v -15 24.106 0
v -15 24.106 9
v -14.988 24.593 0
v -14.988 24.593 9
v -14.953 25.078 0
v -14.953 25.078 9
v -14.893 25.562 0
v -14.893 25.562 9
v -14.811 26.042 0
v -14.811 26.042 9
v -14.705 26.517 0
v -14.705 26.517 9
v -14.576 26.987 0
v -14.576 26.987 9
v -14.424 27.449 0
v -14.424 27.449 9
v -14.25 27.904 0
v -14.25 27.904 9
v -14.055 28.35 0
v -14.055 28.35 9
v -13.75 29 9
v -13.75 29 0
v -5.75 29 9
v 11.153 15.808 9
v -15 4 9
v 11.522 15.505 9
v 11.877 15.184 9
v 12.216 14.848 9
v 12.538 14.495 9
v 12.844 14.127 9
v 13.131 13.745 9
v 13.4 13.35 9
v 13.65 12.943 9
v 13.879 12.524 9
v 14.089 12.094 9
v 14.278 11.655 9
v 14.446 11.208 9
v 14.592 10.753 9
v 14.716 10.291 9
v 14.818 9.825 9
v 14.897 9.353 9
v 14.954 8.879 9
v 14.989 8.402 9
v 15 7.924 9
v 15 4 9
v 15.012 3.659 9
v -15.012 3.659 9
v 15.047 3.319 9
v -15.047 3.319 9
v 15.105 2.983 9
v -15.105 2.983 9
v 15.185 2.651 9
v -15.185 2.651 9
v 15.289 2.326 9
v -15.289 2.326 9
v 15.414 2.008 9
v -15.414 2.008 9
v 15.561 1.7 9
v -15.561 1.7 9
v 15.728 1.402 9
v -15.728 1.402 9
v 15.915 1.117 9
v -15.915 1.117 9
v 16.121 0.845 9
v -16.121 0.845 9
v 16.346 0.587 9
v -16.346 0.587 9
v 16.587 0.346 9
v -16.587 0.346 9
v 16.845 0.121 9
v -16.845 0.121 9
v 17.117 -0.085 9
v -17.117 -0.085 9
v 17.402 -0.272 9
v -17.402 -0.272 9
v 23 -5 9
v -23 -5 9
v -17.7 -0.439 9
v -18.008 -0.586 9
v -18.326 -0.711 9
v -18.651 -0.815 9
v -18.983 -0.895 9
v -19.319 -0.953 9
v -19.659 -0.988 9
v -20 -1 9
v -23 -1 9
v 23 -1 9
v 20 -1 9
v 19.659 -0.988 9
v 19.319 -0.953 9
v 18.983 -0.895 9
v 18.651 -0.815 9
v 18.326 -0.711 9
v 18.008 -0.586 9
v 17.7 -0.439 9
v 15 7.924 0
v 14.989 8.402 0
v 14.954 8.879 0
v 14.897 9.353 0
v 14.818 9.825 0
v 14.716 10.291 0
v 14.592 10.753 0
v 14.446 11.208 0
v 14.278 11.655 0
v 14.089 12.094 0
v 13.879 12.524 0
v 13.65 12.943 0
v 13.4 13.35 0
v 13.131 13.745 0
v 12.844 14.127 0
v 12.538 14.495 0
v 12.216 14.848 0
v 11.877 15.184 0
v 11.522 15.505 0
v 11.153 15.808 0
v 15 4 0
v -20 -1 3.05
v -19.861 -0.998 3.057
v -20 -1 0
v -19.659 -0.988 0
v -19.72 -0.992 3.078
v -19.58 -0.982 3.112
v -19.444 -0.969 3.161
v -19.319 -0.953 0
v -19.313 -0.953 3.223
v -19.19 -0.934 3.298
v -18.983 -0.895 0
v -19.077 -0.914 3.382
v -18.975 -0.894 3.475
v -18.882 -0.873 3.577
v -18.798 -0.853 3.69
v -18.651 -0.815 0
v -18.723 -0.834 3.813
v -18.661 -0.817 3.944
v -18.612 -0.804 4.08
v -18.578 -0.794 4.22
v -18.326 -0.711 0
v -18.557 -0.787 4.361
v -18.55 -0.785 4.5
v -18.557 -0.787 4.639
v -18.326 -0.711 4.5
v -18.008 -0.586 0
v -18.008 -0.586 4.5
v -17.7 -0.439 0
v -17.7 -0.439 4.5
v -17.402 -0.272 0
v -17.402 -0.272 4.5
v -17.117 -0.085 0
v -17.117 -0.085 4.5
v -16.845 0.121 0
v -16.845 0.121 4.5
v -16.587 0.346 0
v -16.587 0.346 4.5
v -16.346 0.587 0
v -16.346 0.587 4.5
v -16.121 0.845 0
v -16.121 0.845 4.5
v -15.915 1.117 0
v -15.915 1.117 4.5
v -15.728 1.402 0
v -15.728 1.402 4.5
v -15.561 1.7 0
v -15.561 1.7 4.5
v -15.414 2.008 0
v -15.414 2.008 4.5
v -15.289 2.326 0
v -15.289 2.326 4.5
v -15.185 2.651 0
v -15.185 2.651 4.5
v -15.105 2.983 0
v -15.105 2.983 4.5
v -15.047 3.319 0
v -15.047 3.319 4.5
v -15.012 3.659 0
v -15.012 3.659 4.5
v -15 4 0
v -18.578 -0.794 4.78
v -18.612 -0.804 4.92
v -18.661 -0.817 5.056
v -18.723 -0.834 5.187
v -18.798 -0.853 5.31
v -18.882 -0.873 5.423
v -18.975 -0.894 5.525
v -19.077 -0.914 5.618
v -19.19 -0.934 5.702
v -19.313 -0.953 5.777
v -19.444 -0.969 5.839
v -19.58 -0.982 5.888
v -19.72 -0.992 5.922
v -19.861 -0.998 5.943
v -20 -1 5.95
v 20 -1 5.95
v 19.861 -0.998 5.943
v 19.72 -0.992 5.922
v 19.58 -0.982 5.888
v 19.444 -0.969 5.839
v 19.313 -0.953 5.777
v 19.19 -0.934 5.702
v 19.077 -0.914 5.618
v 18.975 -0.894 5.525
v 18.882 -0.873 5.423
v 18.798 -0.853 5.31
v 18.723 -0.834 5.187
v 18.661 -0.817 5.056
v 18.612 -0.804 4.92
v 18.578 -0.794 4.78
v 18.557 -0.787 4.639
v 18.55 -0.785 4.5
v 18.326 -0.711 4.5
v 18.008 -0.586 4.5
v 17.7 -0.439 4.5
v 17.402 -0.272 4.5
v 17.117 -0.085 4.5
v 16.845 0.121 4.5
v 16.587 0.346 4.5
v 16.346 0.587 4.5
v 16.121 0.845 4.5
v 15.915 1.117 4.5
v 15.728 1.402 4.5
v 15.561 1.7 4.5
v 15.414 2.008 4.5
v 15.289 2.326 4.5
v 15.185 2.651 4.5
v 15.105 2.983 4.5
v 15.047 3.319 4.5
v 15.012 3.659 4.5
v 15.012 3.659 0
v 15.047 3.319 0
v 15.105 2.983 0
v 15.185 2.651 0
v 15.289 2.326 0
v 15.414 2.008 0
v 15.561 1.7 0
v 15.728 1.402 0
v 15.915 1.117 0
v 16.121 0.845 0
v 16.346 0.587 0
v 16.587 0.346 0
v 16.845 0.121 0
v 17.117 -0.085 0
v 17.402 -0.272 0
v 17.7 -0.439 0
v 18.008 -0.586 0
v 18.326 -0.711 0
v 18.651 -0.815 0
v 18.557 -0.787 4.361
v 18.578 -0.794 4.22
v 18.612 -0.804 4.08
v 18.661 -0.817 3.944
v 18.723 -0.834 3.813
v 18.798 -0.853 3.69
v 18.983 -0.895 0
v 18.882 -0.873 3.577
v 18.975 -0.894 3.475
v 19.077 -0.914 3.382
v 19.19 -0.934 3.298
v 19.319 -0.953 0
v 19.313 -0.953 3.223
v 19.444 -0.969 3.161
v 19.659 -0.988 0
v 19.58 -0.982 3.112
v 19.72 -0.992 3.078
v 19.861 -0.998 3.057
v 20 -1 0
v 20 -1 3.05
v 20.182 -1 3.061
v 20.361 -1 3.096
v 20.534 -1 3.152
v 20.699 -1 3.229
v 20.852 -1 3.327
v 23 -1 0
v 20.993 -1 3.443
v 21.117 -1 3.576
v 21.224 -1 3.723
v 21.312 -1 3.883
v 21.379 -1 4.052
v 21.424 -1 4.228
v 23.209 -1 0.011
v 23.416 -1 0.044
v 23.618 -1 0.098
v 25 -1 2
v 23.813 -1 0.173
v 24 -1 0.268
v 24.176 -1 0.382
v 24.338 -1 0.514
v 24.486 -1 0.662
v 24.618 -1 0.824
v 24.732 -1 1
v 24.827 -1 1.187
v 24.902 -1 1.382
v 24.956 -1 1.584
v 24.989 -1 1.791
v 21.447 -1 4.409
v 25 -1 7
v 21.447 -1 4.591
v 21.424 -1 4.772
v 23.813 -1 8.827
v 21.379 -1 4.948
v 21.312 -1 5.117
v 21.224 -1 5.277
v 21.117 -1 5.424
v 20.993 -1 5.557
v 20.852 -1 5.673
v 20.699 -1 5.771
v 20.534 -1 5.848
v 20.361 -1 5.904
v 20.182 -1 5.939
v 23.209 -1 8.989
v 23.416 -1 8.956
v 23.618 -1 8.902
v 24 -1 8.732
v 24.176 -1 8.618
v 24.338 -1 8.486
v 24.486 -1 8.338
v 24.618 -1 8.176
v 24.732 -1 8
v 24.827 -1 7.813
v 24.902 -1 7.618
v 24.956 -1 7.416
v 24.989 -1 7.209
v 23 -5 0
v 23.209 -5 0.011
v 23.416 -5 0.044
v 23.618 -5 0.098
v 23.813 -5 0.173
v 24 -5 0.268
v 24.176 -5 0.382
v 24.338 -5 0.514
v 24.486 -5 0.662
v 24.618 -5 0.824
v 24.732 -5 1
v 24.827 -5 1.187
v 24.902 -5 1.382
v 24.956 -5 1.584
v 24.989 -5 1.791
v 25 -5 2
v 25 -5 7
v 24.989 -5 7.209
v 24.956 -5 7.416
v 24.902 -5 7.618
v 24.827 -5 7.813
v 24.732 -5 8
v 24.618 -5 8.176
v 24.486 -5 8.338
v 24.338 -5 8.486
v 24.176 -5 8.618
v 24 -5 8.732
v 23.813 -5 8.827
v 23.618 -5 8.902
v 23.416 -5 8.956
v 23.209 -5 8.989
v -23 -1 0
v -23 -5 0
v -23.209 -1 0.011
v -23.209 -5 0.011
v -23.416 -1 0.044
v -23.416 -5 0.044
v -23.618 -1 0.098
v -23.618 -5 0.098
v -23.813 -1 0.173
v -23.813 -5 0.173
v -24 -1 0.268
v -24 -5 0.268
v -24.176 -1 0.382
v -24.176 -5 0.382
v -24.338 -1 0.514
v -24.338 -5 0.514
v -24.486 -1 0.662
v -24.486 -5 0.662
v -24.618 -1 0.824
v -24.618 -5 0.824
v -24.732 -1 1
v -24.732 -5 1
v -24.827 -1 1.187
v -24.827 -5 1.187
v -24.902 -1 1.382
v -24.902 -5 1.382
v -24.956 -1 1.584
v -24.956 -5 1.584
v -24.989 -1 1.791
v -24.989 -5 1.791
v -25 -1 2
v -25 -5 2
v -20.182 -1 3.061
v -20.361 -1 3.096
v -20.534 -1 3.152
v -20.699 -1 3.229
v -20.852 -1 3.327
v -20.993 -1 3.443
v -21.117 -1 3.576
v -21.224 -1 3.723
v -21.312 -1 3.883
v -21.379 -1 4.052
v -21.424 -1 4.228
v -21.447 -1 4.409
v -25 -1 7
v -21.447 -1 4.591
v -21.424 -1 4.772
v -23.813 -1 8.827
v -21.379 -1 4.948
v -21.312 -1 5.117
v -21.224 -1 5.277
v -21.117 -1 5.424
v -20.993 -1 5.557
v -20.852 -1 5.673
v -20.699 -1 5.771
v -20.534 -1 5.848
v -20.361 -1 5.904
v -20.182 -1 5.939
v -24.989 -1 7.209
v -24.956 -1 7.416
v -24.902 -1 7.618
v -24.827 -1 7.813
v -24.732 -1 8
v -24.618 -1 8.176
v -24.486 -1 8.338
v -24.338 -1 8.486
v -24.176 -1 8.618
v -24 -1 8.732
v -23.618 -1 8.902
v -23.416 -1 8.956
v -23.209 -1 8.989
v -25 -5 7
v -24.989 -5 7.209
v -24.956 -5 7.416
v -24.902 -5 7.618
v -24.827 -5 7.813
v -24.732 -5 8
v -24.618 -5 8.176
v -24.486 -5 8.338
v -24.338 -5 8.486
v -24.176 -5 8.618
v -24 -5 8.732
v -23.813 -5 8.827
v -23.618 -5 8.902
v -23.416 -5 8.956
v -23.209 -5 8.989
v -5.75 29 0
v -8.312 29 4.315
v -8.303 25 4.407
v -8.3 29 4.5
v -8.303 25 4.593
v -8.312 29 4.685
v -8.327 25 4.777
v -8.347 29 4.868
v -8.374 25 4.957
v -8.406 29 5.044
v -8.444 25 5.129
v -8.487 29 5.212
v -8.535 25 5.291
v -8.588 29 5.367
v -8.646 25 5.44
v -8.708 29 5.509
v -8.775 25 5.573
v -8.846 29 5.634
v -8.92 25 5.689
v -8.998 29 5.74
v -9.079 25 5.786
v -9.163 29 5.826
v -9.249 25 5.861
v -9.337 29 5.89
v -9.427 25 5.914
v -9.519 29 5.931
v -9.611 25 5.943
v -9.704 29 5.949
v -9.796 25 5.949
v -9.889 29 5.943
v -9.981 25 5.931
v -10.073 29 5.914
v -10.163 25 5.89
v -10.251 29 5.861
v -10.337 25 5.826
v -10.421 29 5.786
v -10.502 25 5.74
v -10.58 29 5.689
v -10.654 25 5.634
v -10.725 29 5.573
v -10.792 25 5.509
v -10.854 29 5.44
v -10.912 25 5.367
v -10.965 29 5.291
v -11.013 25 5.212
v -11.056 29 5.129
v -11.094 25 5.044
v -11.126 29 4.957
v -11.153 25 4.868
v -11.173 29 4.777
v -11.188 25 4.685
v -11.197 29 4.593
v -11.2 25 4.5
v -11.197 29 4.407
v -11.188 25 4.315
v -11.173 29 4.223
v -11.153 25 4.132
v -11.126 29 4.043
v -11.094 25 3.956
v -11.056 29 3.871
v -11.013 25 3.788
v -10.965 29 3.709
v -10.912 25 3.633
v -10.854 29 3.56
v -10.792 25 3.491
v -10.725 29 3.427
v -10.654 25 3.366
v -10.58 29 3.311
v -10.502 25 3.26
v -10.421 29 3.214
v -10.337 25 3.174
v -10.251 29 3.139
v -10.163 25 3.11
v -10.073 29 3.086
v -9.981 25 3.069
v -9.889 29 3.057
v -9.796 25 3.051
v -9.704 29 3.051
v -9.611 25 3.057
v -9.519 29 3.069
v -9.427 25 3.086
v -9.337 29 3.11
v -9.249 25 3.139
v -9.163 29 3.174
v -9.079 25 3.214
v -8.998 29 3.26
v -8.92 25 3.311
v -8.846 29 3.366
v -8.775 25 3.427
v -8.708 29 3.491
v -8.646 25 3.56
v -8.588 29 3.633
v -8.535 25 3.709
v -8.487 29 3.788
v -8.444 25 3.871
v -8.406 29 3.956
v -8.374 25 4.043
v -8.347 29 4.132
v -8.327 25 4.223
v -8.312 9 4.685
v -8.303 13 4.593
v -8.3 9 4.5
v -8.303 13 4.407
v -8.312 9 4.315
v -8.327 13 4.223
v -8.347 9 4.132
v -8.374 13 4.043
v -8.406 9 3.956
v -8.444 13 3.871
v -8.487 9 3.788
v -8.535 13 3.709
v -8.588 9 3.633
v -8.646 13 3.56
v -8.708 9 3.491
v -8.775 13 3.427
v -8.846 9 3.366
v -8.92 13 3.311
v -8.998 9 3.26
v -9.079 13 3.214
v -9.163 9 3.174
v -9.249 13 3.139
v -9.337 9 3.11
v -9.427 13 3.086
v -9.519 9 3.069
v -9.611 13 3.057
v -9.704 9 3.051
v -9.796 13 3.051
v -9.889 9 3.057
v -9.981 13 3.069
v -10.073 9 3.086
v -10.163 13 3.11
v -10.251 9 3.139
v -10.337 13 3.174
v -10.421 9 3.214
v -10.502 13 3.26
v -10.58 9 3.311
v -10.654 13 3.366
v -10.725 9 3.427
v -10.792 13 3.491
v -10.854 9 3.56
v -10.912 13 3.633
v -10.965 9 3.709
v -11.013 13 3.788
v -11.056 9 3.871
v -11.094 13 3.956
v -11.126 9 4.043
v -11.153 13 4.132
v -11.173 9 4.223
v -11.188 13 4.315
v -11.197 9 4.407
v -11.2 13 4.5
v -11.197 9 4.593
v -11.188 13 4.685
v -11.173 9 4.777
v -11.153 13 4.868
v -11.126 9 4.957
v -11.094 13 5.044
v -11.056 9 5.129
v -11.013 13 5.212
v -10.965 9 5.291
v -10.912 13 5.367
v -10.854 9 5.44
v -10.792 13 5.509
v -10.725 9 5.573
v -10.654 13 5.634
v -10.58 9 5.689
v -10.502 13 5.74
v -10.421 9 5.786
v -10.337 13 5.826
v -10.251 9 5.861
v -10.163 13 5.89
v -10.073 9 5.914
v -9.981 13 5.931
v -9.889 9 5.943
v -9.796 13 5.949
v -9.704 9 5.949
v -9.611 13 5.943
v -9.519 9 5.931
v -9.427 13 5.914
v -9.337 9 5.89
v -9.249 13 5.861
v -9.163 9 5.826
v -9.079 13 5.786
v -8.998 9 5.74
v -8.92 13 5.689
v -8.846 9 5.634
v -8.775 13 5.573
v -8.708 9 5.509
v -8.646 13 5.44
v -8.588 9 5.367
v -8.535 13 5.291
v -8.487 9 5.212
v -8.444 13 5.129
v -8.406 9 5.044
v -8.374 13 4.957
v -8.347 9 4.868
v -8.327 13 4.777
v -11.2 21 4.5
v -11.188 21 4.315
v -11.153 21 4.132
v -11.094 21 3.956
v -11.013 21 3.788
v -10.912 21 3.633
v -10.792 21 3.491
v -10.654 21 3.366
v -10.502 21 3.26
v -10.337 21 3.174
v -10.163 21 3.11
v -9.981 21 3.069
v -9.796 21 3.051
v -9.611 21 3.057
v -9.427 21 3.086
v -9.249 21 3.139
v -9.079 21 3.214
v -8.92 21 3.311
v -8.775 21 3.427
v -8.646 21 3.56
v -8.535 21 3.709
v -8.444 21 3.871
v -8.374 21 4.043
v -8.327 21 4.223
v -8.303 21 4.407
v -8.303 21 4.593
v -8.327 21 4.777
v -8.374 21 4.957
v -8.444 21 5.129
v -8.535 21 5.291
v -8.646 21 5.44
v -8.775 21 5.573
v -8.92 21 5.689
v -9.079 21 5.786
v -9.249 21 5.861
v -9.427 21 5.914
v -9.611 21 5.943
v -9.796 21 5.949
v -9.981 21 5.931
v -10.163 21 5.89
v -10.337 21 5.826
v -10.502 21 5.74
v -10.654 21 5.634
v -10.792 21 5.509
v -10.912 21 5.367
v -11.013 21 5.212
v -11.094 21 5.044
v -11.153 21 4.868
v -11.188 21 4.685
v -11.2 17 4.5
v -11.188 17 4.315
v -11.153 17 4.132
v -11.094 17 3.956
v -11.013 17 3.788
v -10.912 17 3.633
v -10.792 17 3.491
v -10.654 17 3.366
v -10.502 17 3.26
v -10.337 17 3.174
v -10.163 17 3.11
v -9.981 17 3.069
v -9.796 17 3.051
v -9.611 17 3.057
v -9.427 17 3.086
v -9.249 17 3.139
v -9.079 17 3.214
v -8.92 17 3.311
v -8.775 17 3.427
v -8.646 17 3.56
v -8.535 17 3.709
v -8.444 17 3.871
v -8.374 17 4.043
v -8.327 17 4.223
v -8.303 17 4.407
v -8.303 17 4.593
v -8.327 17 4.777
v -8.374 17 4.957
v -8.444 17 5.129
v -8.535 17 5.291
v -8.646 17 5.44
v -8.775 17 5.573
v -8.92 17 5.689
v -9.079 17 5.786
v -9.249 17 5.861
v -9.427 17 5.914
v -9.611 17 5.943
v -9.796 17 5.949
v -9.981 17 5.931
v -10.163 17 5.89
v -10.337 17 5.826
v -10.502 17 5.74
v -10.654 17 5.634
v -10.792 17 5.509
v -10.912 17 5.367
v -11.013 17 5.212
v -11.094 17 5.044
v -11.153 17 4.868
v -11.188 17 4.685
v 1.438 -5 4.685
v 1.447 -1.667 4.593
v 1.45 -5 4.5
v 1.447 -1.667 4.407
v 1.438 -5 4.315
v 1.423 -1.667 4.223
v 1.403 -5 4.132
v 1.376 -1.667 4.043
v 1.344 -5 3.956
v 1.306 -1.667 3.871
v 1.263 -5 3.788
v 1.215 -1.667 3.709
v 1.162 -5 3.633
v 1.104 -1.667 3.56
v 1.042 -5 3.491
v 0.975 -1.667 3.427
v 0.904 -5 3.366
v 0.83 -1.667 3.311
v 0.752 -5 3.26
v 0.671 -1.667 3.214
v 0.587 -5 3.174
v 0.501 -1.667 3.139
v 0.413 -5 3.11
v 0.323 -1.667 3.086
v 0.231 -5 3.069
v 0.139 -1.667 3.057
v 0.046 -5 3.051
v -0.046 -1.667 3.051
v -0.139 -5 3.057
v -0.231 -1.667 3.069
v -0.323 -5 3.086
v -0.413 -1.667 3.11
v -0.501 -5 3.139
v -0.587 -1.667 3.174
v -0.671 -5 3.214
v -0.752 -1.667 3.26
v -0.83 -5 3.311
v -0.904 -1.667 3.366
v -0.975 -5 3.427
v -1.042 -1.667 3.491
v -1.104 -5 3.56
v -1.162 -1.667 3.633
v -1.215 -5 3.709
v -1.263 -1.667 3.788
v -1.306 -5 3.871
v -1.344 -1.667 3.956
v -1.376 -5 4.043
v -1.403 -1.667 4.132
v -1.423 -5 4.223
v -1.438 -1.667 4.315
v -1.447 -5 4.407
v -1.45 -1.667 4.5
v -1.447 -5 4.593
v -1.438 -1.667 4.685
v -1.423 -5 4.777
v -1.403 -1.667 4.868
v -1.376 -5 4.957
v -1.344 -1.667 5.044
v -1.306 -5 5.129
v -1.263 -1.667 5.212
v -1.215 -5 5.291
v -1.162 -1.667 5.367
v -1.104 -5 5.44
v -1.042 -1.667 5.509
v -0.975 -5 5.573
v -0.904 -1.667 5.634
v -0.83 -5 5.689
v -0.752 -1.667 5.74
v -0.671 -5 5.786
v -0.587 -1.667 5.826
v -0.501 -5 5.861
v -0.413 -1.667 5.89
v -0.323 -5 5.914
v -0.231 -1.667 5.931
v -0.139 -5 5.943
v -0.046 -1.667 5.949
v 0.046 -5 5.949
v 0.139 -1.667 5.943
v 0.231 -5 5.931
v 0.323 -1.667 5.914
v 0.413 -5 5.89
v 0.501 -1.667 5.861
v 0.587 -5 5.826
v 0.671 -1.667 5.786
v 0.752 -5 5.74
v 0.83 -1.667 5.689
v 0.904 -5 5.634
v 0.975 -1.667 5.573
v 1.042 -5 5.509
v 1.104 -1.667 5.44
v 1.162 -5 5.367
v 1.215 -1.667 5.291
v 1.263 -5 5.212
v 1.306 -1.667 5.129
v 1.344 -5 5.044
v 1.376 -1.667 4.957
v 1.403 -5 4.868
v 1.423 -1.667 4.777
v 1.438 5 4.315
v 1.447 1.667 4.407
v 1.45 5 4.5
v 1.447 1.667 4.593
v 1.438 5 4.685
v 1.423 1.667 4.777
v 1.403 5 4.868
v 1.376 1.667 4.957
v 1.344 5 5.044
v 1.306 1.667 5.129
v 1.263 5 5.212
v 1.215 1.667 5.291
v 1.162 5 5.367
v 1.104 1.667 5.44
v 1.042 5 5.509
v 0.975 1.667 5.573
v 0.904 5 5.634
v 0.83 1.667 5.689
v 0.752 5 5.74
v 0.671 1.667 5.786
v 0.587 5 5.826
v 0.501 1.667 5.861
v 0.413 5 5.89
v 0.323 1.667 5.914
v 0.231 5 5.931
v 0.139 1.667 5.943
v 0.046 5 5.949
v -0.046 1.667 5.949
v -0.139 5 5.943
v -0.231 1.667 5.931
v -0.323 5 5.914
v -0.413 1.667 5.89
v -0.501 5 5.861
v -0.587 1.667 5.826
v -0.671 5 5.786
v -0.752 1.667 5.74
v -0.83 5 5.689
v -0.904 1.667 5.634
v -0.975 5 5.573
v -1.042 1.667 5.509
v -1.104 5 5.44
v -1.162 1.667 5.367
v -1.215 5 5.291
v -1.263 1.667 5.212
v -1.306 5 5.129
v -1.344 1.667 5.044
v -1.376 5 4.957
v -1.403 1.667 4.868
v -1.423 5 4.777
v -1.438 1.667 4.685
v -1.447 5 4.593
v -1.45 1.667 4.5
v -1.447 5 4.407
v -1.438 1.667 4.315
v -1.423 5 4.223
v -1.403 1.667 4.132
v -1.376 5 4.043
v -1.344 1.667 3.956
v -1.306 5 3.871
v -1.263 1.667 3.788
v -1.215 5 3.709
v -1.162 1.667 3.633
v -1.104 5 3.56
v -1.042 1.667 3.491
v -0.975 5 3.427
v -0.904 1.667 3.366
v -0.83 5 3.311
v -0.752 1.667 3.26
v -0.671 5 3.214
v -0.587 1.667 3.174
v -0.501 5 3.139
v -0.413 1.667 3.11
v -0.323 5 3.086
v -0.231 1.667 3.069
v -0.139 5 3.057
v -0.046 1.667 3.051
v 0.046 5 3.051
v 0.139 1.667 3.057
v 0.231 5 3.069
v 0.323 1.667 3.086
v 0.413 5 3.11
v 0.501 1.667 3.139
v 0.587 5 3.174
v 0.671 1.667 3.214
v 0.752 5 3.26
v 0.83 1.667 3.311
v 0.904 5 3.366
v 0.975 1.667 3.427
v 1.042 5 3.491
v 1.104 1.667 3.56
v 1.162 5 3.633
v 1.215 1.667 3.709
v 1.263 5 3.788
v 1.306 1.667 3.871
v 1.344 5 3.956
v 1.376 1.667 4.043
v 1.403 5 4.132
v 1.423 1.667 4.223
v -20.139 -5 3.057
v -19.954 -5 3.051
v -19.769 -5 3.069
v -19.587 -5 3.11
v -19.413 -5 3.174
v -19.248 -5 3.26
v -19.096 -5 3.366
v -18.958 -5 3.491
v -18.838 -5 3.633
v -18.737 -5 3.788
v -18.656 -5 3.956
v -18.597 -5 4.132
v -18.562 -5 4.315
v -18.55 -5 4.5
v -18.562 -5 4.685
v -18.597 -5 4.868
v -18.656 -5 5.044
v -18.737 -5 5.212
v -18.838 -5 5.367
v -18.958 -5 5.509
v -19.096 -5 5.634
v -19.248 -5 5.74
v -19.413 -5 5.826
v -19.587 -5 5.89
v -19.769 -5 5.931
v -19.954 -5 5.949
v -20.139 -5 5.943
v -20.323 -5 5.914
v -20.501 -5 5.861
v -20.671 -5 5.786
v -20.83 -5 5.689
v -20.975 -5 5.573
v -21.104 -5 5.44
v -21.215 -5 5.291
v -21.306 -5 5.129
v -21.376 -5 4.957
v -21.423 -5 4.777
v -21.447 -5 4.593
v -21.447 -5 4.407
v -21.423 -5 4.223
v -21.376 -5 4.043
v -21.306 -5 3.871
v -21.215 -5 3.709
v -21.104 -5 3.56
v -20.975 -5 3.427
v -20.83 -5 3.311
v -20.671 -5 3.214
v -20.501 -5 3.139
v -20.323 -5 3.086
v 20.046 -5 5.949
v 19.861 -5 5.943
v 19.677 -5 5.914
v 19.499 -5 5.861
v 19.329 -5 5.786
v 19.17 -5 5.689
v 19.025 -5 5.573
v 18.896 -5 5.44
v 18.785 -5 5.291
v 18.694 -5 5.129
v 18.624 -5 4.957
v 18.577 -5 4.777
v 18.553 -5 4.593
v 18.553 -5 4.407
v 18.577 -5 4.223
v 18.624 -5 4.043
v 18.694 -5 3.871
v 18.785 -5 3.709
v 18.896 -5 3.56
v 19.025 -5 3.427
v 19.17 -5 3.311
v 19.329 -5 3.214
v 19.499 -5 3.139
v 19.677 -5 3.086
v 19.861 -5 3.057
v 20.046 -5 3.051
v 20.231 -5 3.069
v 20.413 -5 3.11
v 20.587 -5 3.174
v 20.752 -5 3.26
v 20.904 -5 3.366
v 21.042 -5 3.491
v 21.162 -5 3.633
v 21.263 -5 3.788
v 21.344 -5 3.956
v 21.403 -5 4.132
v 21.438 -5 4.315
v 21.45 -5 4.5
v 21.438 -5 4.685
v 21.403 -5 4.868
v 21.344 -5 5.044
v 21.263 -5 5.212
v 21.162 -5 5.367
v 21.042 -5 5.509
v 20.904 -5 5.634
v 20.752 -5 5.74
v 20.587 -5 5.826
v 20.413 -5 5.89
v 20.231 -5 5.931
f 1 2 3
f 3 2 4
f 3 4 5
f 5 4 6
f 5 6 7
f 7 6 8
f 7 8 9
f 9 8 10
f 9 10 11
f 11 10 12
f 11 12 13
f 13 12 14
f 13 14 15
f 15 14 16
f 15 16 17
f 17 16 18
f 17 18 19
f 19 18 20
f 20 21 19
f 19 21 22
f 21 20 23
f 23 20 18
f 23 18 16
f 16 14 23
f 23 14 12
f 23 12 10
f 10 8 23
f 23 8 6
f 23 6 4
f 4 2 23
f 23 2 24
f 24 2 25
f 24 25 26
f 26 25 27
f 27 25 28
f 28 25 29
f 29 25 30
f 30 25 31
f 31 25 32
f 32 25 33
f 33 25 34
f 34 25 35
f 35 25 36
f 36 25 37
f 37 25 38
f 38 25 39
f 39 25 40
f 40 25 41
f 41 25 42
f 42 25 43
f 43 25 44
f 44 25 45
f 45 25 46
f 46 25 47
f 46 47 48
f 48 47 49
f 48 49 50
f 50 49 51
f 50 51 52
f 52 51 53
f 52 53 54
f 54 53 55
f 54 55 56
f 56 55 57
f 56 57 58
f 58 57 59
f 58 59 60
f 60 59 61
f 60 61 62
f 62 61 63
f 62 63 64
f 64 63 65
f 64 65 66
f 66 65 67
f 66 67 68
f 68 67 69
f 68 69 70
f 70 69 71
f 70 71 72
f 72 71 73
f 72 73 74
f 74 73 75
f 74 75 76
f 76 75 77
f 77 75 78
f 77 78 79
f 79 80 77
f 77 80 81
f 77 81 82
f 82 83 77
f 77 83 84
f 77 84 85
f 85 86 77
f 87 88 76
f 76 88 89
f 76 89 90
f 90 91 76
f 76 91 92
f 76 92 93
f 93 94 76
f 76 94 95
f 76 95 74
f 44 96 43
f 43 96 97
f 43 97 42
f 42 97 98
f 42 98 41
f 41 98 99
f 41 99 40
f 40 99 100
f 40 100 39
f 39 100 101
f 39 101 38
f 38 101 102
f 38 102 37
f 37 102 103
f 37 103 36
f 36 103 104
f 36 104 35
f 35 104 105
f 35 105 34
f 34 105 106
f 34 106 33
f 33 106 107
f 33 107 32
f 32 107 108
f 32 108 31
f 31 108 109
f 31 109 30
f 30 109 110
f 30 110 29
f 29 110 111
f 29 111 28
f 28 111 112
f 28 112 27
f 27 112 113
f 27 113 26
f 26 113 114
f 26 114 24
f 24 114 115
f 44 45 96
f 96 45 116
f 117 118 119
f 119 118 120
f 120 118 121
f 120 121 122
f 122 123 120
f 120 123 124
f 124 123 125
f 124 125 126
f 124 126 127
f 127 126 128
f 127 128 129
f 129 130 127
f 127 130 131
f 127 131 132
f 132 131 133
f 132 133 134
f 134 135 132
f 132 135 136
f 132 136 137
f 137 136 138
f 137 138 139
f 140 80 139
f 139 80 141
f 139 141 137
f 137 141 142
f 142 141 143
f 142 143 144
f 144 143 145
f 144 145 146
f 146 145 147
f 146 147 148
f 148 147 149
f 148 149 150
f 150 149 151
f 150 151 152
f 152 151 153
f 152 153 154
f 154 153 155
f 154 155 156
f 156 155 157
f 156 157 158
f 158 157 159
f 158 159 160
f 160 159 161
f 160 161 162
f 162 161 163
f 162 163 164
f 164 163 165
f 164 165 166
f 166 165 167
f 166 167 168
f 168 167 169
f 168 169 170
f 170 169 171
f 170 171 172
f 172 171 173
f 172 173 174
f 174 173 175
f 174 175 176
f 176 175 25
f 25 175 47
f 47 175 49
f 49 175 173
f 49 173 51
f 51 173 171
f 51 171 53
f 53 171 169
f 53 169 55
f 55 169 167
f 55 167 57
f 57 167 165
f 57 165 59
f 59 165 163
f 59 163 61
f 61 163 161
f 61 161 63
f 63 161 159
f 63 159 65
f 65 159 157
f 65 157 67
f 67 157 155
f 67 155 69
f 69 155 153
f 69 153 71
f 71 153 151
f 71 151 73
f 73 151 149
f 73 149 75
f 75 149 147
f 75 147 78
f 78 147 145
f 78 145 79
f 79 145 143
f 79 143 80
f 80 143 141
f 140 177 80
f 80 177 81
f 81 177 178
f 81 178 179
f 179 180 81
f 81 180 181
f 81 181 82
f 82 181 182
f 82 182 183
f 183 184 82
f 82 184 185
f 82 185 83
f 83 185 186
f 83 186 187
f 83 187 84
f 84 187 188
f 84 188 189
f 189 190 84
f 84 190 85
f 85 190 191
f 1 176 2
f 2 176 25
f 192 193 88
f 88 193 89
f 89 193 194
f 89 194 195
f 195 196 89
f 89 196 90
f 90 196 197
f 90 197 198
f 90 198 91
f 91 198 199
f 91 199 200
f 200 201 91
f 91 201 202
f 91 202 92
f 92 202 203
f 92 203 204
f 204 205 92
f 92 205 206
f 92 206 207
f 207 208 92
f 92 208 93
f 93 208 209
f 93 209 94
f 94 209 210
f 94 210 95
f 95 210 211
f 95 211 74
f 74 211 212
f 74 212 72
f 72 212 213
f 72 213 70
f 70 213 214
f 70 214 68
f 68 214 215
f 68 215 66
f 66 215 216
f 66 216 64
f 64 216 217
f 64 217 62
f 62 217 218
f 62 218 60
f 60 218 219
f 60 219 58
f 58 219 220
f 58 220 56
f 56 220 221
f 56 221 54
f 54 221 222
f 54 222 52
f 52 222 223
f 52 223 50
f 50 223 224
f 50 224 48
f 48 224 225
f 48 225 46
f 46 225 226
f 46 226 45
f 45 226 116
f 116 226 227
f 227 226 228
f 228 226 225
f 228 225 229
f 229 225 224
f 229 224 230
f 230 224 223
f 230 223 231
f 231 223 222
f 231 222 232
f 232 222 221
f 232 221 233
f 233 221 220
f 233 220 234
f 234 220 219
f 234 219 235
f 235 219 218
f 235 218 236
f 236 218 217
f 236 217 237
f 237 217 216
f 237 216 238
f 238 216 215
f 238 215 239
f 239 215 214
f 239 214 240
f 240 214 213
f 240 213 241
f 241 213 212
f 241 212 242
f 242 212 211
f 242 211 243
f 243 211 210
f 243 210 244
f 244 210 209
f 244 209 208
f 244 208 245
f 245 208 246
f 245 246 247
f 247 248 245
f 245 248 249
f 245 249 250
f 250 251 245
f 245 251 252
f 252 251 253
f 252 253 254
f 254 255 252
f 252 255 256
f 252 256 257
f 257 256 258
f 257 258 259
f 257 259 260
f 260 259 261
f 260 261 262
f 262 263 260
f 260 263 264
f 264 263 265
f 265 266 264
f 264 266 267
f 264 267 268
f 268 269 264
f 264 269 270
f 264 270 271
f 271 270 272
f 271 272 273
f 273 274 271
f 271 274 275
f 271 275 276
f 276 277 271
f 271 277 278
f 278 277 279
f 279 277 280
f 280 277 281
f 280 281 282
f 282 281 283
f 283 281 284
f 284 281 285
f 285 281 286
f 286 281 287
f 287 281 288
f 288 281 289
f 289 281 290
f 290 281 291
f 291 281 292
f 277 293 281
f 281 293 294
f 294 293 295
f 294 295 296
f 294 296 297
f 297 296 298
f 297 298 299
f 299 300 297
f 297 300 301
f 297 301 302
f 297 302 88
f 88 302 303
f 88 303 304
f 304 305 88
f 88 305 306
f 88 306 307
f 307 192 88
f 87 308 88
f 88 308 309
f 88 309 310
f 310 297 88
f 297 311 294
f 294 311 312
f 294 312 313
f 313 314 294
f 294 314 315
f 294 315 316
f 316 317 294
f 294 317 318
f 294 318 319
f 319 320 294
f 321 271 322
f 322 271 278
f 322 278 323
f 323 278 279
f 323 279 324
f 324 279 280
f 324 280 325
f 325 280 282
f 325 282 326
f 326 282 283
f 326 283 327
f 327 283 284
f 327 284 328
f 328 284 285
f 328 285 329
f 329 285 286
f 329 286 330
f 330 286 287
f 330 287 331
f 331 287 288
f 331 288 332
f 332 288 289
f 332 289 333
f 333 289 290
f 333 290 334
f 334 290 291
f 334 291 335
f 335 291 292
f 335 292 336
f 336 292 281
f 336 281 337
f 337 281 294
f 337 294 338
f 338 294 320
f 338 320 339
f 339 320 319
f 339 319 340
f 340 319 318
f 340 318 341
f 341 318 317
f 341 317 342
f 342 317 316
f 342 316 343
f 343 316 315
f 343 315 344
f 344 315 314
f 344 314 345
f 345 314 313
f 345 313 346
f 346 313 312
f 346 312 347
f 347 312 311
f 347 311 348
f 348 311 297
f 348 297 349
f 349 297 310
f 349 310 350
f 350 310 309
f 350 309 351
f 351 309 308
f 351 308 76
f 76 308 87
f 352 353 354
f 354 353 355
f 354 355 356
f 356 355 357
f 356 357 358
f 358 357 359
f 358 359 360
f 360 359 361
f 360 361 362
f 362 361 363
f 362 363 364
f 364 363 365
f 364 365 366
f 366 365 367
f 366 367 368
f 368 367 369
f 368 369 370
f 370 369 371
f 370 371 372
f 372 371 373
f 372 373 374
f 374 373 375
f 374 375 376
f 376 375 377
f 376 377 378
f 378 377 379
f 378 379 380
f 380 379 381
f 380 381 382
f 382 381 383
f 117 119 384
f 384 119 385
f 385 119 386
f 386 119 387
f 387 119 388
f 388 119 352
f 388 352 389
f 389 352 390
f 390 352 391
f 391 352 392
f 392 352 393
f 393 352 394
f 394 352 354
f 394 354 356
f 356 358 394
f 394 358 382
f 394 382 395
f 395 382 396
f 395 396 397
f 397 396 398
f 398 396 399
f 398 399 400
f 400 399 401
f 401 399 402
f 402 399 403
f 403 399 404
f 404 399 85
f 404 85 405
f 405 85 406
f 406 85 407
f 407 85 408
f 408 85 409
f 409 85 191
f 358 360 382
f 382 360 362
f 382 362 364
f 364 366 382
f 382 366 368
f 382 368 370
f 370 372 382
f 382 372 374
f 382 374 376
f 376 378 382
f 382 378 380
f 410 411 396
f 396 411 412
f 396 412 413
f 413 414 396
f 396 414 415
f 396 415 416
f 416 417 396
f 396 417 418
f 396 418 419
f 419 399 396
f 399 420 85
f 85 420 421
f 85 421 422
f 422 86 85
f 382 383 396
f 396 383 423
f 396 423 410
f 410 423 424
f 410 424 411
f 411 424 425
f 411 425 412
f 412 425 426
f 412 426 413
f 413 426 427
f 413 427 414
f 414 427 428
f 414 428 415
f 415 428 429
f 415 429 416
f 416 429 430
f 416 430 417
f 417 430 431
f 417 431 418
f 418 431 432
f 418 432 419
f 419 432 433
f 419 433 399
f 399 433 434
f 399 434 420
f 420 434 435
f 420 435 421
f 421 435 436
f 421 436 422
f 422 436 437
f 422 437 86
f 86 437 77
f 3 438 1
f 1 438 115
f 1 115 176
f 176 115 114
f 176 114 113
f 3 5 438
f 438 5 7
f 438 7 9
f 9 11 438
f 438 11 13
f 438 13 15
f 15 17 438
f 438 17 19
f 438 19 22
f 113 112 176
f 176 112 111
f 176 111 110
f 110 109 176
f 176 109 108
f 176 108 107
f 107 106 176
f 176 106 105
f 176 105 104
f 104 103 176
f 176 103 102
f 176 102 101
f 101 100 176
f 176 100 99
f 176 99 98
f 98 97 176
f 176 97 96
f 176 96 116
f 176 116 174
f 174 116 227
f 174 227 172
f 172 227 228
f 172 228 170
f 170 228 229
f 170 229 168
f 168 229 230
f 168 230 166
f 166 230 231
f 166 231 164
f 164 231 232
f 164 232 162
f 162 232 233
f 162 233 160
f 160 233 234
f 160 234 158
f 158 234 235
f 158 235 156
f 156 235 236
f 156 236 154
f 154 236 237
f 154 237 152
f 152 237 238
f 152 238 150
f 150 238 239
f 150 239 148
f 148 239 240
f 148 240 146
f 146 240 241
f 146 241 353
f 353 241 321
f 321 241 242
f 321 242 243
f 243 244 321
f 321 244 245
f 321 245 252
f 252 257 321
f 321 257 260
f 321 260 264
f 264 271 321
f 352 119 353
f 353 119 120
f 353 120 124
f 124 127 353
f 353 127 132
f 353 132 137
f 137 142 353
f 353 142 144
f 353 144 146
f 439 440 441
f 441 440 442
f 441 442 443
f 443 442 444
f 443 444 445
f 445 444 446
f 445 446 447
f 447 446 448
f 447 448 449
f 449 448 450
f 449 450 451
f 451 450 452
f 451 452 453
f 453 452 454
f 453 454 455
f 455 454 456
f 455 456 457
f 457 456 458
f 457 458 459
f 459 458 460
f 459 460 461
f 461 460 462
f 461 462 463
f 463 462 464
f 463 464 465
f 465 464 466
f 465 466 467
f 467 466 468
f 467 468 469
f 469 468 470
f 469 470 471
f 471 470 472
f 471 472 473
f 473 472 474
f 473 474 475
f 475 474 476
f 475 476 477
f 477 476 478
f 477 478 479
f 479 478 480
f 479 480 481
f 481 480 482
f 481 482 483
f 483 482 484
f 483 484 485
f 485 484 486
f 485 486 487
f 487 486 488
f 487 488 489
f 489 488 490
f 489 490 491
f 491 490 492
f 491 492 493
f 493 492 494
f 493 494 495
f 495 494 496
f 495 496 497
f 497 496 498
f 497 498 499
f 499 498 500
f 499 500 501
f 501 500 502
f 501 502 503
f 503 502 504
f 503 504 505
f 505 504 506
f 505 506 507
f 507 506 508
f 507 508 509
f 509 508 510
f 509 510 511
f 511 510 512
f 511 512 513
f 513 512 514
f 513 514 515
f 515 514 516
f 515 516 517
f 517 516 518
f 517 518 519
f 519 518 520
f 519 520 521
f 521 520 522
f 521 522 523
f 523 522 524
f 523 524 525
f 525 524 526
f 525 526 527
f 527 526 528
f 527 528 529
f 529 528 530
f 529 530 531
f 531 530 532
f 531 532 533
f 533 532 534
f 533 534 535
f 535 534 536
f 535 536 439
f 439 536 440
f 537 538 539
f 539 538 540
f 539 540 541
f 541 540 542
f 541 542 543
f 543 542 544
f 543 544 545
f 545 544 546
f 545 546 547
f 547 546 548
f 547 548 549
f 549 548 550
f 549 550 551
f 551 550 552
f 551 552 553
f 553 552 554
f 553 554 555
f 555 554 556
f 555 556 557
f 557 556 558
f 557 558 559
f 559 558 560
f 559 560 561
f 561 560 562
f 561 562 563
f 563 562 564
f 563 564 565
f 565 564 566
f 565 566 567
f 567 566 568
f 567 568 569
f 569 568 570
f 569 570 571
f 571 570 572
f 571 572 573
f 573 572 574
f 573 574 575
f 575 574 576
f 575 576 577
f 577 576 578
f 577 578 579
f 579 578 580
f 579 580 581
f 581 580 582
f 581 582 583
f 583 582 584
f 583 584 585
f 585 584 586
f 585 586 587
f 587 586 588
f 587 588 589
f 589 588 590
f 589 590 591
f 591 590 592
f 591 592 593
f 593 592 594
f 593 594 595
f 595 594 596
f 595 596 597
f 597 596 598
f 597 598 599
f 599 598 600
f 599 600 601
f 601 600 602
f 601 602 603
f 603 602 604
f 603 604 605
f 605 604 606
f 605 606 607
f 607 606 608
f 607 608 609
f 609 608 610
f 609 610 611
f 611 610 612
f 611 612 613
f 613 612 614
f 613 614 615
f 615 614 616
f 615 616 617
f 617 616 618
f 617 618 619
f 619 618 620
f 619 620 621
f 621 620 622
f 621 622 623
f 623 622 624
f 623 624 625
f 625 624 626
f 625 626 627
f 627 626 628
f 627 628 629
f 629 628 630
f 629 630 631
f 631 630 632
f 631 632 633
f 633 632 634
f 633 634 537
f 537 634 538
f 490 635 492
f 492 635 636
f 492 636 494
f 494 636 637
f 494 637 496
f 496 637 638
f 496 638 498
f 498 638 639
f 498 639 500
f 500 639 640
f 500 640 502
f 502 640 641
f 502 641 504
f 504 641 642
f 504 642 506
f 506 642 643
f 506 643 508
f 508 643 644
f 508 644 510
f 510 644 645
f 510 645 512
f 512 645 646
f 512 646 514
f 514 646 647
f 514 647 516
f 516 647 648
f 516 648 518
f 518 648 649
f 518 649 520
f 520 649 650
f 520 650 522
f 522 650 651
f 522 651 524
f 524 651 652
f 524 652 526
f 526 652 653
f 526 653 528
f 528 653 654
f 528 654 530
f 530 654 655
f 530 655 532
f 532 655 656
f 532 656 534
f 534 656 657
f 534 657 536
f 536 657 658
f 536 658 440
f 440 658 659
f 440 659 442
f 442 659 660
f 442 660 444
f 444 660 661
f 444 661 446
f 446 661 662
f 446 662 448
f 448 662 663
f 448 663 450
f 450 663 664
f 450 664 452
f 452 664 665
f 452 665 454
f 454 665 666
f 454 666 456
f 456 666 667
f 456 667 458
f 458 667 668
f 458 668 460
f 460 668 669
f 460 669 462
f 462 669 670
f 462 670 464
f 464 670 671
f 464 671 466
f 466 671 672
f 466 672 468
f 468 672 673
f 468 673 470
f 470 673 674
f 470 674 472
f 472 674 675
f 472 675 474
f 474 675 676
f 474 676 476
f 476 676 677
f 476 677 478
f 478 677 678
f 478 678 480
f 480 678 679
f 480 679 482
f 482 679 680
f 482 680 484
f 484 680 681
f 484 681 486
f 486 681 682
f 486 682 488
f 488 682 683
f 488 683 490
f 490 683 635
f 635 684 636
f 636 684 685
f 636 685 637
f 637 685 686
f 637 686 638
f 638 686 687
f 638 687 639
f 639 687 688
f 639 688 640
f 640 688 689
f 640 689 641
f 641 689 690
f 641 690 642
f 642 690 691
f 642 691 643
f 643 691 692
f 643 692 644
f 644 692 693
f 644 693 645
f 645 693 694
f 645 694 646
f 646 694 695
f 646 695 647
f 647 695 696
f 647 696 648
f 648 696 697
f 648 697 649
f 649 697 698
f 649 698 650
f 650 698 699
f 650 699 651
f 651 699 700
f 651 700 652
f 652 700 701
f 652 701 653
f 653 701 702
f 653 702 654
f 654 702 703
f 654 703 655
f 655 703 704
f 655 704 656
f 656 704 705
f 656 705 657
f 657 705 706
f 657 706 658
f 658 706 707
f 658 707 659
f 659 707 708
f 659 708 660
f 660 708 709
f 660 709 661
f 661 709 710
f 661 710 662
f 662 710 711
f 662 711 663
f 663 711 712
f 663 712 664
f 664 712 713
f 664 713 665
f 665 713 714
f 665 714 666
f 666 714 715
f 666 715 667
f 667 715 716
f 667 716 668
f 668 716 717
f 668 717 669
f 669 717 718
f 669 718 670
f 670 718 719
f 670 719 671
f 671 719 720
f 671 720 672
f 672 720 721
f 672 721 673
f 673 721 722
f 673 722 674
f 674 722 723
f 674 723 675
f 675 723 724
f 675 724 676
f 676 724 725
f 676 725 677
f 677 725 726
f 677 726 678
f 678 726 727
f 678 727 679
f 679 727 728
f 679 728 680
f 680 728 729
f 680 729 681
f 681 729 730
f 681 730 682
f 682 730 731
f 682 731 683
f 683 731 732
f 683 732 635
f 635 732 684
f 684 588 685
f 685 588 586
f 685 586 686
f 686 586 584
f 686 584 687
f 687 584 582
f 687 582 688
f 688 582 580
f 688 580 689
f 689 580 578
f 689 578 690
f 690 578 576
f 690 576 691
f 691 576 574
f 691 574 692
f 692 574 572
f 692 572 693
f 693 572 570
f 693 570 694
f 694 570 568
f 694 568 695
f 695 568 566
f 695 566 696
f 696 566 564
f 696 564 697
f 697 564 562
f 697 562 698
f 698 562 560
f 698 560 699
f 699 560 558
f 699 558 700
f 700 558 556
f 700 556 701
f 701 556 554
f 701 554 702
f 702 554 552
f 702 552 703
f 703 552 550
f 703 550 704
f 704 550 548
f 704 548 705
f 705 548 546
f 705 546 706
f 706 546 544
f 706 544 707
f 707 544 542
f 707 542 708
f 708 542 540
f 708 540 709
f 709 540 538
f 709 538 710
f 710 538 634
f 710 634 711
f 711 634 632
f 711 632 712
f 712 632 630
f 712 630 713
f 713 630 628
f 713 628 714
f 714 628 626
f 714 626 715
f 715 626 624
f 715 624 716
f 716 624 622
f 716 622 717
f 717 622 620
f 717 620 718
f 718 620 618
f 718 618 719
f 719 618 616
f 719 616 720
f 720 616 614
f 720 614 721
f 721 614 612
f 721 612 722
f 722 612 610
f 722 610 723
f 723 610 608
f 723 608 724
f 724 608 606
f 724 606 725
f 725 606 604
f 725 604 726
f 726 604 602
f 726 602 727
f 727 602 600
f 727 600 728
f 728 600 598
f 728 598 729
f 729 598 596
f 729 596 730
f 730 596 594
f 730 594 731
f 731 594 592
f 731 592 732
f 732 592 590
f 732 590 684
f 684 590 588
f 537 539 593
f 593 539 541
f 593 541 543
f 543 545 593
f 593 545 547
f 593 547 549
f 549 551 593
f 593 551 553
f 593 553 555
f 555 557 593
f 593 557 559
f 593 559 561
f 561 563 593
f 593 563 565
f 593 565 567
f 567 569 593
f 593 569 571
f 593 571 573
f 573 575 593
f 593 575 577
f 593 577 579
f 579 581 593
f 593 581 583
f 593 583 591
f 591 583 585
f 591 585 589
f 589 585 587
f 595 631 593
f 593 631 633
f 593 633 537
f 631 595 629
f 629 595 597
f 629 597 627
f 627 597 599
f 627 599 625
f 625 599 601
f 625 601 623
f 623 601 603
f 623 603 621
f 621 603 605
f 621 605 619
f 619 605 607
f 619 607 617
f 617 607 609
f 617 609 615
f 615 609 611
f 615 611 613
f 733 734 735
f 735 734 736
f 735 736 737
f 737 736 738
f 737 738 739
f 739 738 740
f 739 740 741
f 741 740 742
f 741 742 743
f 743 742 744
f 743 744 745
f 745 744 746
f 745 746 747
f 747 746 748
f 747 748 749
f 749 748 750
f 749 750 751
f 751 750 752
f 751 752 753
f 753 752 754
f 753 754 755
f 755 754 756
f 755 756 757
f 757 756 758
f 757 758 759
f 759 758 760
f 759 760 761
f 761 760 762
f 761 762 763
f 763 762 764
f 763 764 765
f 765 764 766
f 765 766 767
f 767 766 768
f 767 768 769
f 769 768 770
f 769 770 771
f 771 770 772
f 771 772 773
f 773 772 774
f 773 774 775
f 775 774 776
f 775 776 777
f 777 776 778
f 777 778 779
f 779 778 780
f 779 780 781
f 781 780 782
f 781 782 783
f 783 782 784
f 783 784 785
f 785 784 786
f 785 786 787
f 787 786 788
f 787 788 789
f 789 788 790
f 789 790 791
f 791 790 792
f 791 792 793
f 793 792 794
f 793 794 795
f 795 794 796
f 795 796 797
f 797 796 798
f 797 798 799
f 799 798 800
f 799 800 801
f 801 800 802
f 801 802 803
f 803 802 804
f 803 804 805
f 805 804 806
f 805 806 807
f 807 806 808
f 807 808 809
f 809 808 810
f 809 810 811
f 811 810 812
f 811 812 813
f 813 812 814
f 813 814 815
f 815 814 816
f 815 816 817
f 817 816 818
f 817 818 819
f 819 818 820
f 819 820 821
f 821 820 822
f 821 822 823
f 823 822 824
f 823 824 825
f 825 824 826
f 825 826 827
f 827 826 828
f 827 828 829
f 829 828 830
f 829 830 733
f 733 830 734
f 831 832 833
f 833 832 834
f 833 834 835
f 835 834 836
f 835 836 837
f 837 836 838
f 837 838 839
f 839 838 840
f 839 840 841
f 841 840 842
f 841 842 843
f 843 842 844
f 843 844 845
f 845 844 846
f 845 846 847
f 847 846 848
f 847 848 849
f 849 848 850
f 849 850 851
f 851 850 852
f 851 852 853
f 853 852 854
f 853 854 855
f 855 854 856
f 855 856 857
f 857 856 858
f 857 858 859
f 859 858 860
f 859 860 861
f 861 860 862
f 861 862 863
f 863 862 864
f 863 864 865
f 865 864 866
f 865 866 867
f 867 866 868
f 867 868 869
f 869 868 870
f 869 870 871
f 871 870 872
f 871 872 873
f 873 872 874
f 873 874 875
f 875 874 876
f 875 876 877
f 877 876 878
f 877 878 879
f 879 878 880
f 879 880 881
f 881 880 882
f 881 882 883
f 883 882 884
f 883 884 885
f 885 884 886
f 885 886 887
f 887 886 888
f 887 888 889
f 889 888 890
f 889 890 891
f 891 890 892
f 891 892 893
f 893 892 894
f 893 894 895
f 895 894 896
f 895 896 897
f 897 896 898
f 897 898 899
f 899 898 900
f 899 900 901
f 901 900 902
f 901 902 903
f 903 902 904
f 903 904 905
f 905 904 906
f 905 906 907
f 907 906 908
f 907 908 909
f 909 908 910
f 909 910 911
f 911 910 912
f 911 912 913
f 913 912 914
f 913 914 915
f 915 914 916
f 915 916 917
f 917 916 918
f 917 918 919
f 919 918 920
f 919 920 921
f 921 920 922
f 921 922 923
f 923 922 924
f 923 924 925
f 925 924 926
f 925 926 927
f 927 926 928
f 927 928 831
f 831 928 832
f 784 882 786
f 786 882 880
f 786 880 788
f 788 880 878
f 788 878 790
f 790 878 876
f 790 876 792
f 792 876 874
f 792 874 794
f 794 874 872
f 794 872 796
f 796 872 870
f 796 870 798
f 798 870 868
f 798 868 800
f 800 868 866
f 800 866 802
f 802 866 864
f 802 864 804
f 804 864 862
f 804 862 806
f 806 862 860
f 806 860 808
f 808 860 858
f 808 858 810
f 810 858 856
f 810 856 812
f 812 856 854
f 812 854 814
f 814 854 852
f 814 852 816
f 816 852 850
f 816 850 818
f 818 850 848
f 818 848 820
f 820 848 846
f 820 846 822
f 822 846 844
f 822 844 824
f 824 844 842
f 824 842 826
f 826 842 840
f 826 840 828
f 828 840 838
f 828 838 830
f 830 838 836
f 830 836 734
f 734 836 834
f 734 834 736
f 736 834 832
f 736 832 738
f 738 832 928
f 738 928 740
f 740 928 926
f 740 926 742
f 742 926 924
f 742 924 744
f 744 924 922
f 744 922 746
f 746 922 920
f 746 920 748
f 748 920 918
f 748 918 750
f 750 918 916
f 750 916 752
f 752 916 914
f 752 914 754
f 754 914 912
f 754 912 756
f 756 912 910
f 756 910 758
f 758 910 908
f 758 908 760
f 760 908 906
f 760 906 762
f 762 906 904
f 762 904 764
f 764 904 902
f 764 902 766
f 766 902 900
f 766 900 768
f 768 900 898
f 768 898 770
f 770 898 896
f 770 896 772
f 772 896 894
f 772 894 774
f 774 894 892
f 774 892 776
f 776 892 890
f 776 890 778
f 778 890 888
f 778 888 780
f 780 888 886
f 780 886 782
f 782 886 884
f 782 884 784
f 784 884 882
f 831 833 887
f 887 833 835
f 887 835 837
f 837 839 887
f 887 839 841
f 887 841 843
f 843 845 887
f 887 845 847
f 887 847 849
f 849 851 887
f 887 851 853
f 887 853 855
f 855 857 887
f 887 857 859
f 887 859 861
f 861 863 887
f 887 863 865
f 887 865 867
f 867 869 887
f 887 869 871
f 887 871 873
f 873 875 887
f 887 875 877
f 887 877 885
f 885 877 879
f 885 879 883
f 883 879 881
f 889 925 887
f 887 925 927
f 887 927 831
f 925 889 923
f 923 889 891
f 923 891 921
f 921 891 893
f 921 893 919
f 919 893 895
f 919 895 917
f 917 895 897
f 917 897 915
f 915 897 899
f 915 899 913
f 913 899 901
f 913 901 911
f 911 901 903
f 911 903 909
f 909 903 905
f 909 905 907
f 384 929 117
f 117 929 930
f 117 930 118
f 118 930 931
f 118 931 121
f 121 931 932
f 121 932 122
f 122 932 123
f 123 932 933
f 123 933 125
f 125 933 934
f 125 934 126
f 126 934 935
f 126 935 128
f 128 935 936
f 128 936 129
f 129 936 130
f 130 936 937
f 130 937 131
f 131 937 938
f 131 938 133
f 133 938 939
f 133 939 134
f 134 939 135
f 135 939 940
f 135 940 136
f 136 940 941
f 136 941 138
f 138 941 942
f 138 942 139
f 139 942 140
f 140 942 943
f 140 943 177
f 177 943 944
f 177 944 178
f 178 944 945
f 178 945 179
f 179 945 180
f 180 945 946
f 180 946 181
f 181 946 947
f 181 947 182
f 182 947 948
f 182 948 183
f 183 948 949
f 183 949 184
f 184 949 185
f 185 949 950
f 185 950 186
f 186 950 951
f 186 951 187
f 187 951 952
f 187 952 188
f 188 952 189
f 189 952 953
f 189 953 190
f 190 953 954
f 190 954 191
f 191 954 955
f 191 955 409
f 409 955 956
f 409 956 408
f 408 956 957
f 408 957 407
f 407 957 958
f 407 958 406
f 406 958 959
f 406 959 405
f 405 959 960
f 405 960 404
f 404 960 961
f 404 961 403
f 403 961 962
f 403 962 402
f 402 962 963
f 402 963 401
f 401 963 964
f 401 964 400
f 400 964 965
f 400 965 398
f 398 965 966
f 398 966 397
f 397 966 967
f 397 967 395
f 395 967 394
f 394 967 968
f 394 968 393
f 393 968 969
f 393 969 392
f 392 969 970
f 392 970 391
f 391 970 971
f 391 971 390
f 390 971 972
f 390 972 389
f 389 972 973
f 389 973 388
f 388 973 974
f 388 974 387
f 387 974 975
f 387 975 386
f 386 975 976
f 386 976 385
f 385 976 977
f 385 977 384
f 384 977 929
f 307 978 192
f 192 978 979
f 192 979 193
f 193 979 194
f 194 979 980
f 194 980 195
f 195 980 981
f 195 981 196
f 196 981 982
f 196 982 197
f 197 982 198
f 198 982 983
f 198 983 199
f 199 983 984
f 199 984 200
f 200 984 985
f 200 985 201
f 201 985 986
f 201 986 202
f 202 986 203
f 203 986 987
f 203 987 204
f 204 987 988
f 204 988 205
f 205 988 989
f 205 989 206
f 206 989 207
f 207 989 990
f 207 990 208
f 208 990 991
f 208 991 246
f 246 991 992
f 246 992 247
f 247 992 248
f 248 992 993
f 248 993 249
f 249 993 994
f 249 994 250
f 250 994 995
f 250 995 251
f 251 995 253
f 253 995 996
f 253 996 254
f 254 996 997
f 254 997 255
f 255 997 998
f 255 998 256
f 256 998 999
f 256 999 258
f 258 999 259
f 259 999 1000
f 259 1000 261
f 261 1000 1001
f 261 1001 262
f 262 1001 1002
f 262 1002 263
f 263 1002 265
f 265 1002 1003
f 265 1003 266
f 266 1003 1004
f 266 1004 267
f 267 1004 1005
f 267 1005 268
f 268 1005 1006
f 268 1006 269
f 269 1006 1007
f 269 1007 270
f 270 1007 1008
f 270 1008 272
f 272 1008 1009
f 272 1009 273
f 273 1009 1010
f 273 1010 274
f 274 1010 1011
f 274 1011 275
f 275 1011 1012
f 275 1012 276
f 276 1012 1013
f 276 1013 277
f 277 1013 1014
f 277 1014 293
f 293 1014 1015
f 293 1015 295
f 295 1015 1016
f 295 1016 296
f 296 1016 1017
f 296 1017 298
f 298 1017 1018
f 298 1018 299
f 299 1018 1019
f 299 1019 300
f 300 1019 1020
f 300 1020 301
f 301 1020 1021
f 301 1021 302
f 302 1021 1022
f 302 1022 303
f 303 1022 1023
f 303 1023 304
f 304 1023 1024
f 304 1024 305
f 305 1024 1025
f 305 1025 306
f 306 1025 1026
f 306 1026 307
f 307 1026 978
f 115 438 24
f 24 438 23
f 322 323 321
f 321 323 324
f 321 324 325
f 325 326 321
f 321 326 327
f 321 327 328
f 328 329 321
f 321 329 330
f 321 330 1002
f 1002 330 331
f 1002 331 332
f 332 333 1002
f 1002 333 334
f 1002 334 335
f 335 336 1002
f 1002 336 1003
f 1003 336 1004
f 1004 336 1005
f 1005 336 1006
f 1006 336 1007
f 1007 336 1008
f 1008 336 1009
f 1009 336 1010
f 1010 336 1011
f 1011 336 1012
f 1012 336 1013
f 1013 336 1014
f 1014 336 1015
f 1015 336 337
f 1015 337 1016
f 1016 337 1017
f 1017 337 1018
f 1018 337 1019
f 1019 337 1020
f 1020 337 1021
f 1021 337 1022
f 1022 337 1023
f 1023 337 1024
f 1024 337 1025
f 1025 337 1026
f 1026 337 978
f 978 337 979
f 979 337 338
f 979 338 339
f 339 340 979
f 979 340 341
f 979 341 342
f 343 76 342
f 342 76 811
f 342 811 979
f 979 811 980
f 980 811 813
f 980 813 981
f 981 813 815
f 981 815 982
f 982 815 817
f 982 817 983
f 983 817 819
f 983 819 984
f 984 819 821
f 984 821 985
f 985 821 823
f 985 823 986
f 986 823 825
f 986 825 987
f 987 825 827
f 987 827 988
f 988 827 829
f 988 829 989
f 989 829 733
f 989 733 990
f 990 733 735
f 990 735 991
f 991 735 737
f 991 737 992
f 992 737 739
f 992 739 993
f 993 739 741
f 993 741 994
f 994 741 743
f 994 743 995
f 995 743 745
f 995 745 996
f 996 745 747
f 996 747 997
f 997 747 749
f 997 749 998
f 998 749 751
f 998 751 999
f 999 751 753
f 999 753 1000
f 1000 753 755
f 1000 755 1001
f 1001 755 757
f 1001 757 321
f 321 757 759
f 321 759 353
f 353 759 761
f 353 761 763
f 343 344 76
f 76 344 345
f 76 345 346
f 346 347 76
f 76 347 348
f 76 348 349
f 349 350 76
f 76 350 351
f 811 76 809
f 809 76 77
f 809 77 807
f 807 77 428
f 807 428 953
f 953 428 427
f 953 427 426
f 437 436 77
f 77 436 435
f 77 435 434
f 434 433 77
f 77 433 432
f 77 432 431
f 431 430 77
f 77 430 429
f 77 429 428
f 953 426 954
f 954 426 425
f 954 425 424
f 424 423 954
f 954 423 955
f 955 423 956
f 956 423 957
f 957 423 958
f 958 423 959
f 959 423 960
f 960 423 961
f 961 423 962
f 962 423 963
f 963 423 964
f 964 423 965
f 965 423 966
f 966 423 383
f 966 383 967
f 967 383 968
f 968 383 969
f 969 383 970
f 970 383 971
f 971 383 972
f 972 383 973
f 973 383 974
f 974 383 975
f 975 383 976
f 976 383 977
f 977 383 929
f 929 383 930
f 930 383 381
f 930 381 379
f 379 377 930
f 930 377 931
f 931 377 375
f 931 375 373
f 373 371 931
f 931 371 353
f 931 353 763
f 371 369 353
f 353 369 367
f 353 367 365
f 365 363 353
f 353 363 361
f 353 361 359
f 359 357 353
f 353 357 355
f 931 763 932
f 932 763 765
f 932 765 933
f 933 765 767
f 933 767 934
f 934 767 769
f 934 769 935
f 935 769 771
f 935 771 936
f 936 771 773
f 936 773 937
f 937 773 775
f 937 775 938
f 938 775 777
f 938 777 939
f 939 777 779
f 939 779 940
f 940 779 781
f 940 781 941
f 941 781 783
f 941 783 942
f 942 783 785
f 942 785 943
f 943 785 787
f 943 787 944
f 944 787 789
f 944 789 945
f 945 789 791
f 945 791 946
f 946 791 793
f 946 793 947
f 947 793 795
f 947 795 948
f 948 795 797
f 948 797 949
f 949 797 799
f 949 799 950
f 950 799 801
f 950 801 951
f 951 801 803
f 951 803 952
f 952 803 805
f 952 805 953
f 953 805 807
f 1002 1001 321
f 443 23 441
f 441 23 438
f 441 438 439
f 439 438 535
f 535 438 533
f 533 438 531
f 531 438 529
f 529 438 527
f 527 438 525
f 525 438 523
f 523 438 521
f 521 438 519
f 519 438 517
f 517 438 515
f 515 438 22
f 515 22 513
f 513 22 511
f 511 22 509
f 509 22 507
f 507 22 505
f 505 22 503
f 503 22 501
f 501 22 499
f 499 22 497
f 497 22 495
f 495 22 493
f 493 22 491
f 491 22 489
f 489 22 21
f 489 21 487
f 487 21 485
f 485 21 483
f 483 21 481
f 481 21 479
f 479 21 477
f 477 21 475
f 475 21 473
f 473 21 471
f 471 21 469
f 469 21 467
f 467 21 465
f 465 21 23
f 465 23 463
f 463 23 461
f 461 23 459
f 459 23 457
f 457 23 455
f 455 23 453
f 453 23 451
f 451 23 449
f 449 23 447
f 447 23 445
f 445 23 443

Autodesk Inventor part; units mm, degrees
ref_plane "YZ Plane" through (0, 0, 0) normal (1, 0, 0) x (0, 1, 0)
ref_plane "XZ Plane" through (0, 0, 0) normal (0, 1, 0) x (-1, 0, 0)
ref_plane "XY Plane" through (0, 0, 0) normal (0, 0, 1) x (1, 0, 0)
sketch "Sketch1" plane through (0, 0, 0) normal (0, 0, 1) x (1, 0, 0)
  line L0 (-25, -5) -> (25, -5)
  line L1 (25, -5) -> (25, 5)
  line L2 (25, 5) -> (-25, 5)
  line L3 (-25, 5) -> (-25, -5)
  line L4 (-25, -5) -> (25, 5) construction
  line L5 (25, -5) -> (-25, 5) construction
  line L6 (-25, 5) -> (-13.75, 29)
  line L7 (-13.75, 29) -> (-5.75, 29)
  line L8 (-5.75, 29) -> (25, 5)
  line L9 (-9.75, 29) -> (-9.75, 5) construction
  point P0 (0, 0)
  dimension "d0" = 15.25
  dimension "d1" = 50
  dimension "d2" = 34
  dimension "d3" = 8
  dimension "d4" = 10
extrude "Extrusion1" add sketch "Sketch1" along normal blind 9
sketch "Sketch2" plane through (-25, -5, 0) normal (0, -1, 0) x (1, 0, 0)
  line L0 (0, 0) -> (50, 0) projected
  line L1 (50, 0) -> (50, 9) projected
  line L2 (0, 9) -> (50, 9) projected
  line L3 (0, 0) -> (0, 9) projected
  point P0 (25, 0)
  point P1 (5, 4.5)
  point P2 (25, 4.5)
  point P3 (45, 4.5)
  point P4 (50, 4.5)
  dimension "d7" = 20
  dimension "d8" = 20
  dimension "d9" = 5
hole "Hole1" at (20, -5, 4.5) at (-20, -5, 4.5) at (0, -5, 4.5) direction (0, 1, 0) diameter 2.9 depth 10
sketch "Sketch3" plane through (-13.75, 29, 0) normal (0, 1, 0) x (1, 0, 0)
  line L0 (8, 0) -> (0, 0) projected
  line L1 (0, 0) -> (0, -9) projected
  line L2 (8, -9) -> (0, -9) projected
  line L3 (8, 0) -> (8, -9) projected
  point P0 (13.75, 0)
  point P1 (4, -4.5)
  point P2 (8, -4.5)
  point P3 (4, 0)
hole "Hole2" at (-9.75, 29, 4.5) direction (0, -1, 0) diameter 2.9 depth 20
sketch "Sketch4" plane through (0, 0, 9) normal (0, 0, 1) x (1, 0, 0)
  line L0 (-11.2, 9) -> (-11.2, 29) projected
  line L1 (-21.45, 5) -> (-21.45, -5) projected
  line L2 (-18.55, 5) -> (-18.55, -5) projected
  line L3 (18.55, 5) -> (18.55, -5) projected
  line L4 (-5.75, 29) -> (-13.75, 29) projected
  line L5 (-13.75, 29) -> (-25, 5) projected
  line L6 (-25, 5) -> (-25, -5) projected
  line L7 (-25, -5) -> (25, -5) projected
  line L8 (25, -5) -> (25, 5) projected
  line L9 (25, 5) -> (-5.75, 29) projected
  line L10 (21.45, 5) -> (21.45, -5) projected
  line L11 (-25, -1) -> (25, -1)
  line L12 (-15, -1) -> (-15, 26.3333)
  line L13 (15, 12.8049) -> (15, -1)
  point P0 (0, 0)
  dimension "d25" = 4
  dimension "d26" = 3.55
  dimension "d27" = 3.55
extrude "Extrusion2" cut sketch "Sketch4" against normal through all contours L11 L6 L5 L12 | L13 L9 L8 L11
fillet "Fillet2" radius 2 4 edges at (-25, -3, 9) (-25, -3, 0) (25, -3, 9) (25, -3, 0)
fillet "Fillet3" radius 5 2 edges at (15, -1, 4.5) (-15, -1, 4.5)
fillet "Fillet4" radius 10 2 edges at (15, 12.8049, 4.5) (-15, 26.3333, 4.5)
equation "\"d8\" = d7"
equation "\"d27\" = d26"
properties part number "RightLevelBlock" material "ABS Plastic"
